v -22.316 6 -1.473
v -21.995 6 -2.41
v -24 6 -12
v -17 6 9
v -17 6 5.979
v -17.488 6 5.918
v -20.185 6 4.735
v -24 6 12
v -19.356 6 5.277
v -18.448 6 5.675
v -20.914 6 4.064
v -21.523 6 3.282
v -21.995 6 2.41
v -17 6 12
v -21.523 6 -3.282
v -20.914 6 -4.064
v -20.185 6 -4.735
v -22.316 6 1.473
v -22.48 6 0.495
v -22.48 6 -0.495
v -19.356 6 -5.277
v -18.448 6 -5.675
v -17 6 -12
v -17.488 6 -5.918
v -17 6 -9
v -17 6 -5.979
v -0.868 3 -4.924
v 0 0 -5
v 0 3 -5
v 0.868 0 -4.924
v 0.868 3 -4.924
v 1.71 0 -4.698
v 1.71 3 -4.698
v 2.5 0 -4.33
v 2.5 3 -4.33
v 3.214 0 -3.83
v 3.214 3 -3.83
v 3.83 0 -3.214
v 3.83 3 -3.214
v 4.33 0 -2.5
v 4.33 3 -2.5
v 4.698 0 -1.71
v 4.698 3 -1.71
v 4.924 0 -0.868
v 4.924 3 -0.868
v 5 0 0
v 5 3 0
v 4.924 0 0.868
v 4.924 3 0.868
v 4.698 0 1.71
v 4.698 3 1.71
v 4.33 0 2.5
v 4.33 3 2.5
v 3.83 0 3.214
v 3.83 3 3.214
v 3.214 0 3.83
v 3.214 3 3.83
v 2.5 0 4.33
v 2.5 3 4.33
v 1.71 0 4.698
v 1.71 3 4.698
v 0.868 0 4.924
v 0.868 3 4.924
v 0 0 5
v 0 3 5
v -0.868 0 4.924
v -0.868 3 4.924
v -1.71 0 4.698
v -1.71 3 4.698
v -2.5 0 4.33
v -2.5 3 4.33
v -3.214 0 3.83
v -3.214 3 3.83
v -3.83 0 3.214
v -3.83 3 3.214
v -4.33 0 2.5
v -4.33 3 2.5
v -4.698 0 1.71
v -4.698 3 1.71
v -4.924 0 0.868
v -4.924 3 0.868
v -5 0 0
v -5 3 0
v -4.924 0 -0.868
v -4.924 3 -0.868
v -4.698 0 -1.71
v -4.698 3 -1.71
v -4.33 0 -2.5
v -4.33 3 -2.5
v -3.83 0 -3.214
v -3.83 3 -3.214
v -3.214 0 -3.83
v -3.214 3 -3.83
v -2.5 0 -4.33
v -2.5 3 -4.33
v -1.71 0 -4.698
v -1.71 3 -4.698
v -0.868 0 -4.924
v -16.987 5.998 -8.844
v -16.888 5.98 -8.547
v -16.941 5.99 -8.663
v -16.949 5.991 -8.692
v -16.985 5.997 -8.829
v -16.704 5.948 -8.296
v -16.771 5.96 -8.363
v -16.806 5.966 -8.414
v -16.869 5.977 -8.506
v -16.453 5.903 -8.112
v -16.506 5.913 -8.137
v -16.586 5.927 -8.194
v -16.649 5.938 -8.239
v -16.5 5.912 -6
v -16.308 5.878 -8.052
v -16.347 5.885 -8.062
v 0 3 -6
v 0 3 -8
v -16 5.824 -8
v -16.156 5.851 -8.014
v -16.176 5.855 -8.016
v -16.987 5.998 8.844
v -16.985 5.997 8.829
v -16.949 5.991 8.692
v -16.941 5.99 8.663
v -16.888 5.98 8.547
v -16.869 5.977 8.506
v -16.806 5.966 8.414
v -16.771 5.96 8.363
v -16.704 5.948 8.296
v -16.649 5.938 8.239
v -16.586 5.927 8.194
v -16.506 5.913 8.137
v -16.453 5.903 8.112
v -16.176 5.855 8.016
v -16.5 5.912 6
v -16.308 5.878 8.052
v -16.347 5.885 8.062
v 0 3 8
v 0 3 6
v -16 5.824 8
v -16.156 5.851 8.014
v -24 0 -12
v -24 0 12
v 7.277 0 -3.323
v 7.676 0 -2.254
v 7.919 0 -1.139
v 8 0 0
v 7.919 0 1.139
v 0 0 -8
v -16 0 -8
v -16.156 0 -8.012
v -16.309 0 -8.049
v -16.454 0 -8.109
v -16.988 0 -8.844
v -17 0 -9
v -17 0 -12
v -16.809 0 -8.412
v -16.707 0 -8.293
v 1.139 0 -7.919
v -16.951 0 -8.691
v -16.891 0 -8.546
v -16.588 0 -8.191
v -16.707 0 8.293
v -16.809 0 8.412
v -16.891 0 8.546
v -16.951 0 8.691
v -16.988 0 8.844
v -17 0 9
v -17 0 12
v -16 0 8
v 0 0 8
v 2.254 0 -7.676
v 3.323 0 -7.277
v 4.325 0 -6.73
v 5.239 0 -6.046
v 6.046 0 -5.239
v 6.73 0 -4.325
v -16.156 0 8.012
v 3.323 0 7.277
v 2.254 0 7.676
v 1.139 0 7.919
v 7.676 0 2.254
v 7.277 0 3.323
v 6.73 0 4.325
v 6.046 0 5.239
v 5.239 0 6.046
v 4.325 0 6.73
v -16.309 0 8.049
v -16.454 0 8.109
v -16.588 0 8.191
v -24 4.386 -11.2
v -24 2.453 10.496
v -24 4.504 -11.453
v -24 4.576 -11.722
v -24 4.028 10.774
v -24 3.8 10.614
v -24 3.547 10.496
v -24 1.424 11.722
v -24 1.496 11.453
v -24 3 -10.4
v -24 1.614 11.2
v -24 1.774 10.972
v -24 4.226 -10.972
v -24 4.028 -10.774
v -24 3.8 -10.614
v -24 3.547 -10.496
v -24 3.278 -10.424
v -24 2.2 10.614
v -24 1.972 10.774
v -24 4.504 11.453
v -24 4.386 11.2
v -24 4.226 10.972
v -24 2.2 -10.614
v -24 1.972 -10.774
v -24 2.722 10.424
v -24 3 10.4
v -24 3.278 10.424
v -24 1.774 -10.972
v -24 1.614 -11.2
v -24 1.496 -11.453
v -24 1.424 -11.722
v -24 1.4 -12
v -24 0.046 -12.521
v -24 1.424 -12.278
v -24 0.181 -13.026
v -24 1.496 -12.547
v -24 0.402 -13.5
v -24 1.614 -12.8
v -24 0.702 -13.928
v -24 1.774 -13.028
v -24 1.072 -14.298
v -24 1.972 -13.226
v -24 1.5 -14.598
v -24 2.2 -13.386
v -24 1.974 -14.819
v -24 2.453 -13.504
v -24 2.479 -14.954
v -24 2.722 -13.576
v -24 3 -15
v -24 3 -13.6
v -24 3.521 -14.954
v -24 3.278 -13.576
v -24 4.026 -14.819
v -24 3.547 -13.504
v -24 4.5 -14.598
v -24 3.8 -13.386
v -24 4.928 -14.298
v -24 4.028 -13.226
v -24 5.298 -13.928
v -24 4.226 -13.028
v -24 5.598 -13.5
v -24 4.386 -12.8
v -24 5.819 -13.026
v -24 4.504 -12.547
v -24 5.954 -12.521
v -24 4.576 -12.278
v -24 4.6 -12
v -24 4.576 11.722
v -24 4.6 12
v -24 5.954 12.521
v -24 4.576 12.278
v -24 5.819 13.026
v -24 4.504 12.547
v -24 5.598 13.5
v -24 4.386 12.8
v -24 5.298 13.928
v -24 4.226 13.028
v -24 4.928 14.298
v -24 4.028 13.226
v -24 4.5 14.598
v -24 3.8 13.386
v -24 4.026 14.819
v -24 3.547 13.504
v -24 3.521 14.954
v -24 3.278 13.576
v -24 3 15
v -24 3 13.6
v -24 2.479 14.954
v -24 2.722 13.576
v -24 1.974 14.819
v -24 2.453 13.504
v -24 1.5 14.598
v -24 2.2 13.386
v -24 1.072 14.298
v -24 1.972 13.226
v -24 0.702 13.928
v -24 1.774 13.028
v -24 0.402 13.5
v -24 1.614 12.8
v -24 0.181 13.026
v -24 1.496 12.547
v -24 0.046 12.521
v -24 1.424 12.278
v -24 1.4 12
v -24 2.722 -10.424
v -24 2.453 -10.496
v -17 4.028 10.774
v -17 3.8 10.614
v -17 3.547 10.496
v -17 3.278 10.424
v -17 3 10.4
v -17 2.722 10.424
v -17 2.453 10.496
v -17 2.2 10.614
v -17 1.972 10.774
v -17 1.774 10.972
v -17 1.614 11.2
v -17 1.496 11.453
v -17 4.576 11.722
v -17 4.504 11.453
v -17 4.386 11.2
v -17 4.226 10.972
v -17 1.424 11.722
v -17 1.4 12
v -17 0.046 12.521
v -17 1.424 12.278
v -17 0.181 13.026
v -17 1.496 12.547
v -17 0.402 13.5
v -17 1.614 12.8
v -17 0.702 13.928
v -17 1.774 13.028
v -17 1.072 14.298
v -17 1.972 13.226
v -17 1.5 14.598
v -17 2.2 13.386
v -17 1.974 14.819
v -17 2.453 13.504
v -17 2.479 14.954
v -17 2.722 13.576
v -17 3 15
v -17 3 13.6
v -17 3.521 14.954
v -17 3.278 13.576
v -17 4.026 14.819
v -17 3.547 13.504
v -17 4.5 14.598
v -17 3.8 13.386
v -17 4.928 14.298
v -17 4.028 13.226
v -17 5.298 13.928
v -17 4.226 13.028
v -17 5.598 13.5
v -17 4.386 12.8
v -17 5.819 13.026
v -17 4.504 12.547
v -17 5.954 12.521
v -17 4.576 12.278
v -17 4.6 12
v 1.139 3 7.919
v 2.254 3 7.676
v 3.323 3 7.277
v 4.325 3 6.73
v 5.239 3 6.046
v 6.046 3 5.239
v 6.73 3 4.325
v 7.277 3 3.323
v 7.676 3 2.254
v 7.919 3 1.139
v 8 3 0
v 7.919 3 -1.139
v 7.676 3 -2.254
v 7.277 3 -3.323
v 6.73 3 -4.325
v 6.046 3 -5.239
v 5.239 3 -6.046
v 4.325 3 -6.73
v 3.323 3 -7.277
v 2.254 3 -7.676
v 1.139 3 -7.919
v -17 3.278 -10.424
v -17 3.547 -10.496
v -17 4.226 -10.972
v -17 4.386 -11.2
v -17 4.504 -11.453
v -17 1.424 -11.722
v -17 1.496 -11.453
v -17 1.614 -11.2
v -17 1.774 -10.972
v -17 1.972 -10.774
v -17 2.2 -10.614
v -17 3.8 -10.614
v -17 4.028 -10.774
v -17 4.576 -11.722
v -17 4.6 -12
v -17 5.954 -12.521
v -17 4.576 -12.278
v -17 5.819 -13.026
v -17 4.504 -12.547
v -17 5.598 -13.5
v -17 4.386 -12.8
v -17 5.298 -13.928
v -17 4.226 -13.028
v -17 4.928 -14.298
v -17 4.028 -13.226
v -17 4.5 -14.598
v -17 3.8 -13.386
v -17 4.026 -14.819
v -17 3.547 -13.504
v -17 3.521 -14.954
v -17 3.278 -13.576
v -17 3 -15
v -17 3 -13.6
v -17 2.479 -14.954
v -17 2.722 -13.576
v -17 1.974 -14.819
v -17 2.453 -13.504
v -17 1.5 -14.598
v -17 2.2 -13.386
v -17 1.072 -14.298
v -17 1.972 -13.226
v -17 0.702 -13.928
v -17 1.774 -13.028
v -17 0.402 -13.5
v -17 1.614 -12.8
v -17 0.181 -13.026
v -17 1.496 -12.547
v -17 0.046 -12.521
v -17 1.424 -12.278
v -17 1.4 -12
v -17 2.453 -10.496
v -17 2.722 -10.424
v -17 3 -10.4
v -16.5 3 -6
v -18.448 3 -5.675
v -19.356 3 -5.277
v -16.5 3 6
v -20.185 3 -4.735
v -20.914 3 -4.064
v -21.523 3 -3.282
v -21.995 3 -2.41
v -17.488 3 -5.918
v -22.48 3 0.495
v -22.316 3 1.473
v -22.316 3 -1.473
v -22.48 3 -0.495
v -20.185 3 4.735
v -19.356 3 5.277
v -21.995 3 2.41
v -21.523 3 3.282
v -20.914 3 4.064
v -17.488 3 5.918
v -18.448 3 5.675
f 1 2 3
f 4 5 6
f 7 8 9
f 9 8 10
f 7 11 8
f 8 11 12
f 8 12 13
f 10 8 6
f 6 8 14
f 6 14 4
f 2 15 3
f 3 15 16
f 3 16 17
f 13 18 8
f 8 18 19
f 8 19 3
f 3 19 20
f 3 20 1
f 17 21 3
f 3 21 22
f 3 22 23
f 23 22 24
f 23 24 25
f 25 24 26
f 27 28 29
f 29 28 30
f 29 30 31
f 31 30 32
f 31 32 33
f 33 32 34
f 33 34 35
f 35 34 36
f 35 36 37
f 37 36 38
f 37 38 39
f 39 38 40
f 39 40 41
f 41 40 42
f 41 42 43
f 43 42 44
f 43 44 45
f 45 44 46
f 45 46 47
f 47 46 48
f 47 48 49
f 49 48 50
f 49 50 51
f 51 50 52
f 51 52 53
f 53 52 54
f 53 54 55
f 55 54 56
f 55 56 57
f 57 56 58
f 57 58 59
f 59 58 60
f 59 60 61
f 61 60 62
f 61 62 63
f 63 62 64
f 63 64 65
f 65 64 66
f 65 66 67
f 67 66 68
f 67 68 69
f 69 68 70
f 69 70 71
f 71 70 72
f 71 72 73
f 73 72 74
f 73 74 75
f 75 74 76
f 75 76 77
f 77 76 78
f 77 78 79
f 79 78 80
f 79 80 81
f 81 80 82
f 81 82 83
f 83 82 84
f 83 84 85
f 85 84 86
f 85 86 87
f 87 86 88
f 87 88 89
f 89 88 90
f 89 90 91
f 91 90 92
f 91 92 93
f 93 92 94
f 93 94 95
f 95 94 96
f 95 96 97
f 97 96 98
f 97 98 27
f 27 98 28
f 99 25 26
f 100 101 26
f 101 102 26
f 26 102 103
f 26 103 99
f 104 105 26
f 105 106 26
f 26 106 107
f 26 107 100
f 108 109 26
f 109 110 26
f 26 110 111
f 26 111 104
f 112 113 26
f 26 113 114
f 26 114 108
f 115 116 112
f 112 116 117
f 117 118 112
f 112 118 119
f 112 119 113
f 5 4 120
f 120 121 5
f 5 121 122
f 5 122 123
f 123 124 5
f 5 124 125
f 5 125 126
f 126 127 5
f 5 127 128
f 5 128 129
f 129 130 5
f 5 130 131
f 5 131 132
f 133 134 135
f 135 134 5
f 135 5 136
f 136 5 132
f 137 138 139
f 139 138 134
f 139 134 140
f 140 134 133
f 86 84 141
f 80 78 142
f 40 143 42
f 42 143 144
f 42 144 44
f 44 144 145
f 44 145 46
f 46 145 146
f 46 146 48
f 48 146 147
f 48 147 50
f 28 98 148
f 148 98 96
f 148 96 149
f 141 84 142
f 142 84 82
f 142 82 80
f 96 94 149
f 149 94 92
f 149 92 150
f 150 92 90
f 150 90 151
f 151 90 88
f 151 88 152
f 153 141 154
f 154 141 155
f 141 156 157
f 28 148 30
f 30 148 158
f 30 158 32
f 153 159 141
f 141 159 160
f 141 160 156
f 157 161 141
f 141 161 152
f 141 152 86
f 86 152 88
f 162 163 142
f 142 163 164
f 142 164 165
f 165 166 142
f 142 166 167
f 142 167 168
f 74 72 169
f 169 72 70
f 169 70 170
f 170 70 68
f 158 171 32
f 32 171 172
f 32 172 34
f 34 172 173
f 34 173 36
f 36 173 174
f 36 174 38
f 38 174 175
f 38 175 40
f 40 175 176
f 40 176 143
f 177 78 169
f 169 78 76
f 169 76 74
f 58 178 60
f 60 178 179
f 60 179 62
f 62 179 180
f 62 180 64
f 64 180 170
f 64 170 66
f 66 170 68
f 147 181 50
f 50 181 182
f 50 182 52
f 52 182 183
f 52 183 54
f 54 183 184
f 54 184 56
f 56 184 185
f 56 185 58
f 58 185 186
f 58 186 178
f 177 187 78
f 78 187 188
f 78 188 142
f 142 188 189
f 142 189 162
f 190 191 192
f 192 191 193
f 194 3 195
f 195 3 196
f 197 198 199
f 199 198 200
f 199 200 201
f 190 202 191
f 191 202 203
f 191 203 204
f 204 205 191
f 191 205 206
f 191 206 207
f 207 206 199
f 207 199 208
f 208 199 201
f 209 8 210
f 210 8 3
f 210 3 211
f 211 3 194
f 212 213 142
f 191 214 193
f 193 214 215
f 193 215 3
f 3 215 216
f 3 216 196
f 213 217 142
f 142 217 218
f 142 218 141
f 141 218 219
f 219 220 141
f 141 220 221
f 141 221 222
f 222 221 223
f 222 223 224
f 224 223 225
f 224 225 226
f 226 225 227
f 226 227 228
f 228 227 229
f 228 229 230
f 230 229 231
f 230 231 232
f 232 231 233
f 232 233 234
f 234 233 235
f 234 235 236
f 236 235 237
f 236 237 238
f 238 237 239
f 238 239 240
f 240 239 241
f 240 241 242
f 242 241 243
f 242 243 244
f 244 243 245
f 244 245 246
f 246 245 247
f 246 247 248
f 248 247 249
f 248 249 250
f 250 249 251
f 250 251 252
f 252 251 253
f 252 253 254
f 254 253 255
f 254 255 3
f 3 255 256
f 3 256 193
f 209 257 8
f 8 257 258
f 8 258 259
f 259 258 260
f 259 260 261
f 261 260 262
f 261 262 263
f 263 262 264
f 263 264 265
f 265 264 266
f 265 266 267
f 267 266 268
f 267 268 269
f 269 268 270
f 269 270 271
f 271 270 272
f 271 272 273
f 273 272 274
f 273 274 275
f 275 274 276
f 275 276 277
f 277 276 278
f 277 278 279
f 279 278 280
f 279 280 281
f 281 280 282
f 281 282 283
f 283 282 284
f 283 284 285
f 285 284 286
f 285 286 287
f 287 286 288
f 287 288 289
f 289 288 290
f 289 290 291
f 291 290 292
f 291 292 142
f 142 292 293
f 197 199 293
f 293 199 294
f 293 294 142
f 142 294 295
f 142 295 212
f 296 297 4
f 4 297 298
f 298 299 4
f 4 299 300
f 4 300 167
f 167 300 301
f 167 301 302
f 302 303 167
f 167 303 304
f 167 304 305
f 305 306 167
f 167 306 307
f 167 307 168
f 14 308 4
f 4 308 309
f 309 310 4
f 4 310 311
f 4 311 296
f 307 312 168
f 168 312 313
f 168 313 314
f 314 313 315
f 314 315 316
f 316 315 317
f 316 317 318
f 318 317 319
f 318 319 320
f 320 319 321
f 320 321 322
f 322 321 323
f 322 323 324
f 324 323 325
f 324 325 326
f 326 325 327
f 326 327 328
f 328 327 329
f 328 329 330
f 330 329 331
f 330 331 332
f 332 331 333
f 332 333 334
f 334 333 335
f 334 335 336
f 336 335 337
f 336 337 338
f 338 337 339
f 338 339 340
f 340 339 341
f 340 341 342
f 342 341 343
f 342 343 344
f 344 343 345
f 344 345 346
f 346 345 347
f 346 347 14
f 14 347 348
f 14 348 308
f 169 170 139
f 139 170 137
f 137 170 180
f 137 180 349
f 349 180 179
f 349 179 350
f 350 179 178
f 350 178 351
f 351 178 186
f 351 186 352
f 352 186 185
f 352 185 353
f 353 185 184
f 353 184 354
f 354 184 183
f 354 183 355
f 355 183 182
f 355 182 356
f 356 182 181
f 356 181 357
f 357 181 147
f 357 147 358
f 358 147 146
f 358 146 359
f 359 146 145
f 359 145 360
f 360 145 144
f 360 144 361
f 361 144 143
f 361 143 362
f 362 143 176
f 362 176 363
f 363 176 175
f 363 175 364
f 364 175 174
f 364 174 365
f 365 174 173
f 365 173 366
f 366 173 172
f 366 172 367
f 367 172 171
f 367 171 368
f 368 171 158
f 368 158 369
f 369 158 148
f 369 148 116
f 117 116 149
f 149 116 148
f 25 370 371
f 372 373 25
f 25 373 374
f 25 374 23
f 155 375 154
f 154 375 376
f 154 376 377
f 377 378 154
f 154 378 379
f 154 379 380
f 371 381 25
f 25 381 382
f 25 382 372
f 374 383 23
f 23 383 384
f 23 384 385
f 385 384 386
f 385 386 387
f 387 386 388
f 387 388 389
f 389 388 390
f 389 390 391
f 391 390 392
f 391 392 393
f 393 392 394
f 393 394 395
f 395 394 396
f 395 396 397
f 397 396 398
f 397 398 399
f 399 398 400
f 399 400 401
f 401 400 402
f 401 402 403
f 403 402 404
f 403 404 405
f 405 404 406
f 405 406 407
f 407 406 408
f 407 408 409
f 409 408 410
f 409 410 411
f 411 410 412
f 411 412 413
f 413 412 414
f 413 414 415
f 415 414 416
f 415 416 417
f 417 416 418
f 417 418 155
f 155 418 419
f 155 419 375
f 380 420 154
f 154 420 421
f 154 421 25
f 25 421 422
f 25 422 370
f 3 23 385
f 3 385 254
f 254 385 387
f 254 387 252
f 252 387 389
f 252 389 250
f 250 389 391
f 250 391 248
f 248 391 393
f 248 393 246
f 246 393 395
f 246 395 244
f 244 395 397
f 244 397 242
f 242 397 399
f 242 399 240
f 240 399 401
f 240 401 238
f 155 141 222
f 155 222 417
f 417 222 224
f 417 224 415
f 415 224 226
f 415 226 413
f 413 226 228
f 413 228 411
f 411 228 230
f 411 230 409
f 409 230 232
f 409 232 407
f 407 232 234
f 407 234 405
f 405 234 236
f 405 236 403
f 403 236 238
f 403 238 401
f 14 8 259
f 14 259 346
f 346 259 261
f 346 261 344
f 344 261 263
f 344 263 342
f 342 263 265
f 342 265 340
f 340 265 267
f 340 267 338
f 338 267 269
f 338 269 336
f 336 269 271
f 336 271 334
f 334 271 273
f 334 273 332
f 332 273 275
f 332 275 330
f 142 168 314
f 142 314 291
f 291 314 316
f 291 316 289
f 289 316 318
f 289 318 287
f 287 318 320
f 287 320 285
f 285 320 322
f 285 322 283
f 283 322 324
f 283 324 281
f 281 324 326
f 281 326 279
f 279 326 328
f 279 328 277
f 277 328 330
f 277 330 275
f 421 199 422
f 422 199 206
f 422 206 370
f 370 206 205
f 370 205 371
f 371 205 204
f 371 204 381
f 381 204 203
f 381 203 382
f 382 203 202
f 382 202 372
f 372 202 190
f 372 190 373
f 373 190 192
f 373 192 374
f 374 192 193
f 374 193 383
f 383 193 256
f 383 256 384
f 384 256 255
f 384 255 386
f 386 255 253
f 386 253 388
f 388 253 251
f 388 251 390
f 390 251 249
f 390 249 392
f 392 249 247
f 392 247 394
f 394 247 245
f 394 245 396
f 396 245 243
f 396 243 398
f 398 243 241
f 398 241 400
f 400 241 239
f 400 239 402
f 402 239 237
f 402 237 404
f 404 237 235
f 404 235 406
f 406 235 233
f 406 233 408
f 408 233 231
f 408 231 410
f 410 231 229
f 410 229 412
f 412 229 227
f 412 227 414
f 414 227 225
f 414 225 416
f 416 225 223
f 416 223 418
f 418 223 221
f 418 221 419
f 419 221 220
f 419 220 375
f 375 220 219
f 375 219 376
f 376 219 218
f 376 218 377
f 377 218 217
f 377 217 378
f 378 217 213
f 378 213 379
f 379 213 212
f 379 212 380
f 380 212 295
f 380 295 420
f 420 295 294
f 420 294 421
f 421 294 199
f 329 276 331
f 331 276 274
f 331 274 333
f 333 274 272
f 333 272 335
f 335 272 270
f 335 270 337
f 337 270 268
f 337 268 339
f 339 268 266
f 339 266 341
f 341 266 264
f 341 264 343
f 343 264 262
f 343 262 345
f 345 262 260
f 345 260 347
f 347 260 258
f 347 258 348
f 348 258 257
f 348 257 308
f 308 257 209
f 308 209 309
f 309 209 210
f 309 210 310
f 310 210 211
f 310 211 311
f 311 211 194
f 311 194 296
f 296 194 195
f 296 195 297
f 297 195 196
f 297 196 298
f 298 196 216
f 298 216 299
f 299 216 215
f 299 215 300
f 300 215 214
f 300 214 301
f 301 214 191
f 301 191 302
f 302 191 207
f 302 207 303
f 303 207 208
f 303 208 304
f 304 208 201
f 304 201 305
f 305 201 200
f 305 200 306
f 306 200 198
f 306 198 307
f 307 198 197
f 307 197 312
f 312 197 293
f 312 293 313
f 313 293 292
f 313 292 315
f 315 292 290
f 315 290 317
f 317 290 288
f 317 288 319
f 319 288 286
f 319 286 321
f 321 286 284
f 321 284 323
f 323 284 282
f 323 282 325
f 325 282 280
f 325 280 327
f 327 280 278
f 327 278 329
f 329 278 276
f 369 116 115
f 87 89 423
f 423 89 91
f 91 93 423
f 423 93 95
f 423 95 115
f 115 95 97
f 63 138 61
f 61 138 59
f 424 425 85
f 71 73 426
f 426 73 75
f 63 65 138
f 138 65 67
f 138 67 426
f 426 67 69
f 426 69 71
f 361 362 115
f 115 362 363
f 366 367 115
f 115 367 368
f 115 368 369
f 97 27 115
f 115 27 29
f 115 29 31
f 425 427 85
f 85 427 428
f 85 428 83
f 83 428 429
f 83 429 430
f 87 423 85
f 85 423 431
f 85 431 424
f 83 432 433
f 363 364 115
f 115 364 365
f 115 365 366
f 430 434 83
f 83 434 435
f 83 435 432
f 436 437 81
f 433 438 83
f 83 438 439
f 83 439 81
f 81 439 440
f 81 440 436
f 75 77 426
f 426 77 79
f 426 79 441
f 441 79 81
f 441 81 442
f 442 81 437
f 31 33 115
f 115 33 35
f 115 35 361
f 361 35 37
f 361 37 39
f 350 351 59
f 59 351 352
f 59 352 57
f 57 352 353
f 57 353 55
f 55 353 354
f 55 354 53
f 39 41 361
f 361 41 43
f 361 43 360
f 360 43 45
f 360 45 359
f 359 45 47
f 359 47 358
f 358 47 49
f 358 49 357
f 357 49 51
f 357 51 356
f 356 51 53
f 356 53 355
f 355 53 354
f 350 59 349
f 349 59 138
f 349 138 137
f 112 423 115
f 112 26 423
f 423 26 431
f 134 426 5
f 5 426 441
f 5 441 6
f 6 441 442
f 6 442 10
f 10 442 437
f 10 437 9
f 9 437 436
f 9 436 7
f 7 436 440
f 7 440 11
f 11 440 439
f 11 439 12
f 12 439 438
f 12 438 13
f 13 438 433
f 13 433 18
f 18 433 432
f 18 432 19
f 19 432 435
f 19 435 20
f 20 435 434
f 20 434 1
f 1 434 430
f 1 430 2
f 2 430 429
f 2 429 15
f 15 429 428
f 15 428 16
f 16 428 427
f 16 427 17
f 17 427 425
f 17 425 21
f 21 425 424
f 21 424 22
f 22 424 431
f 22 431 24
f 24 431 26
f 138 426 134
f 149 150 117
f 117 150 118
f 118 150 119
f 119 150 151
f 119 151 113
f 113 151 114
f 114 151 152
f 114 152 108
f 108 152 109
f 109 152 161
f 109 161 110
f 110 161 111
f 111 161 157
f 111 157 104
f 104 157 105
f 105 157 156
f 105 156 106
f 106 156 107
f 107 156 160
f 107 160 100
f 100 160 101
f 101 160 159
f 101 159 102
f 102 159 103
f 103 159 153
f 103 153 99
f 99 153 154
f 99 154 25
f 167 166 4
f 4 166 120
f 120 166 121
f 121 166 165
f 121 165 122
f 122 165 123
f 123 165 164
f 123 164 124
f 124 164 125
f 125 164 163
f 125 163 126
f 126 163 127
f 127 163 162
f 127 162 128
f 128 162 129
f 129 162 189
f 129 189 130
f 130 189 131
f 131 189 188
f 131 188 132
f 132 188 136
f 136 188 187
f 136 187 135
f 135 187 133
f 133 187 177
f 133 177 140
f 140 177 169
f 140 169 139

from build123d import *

# Parameters (mm, degrees)
SKETCH1_R               = 5
BOSS_EXTRUDE1_DEPTH     = 6
FILLET1_R               = 3
SKETCH2_R               = 1.6
CUT_EXTRUDE1_DEPTH      = 36.846896658
CUT_EXTRUDE2_DEPTH      = 29.930952283
CUT_EXTRUDE2_DEPTH_BACK = 29.930952283
CUT_EXTRUDE3_DEPTH      = 29.460498942
FILLET3_R               = 1


with BuildPart() as part:
    # Sketch1 → Boss-Extrude1 (new body)
    with BuildSketch(Plane(origin=(0, 0, 0), x_dir=(1, 0, 0), z_dir=(0, 1, 0))):
        with BuildLine():
            Line((0, 8), (-17, 8))
            Line((-17, 8), (-17, 15))
            Line((-17, 15), (-24, 15))
            Line((-24, 15), (-24, -15))
            Line((-24, -15), (-17, -15))
            Line((-17, -15), (-17, -8))
            Line((-17, -8), (0, -8))
            ThreePointArc((0, -8), (8, 0), (0, 8))
        make_face()
        with Locations(Location((0, 0, 0), (0, 0, 270))):
            Circle(SKETCH1_R, mode=Mode.SUBTRACT)
    extrude(amount=BOSS_EXTRUDE1_DEPTH)

    # Fillet1
    fillet1_edges = [part.edges().sort_by_distance(p)[0] for p in [
        (-20.5, 0, -15),
        (-20.5, 6, -15),
        (-20.5, 0, 15),
        (-20.5, 6, 15),
    ]]
    fillet(fillet1_edges, radius=FILLET1_R - 0.0001)  # a hair under: the kernel refuses the full size

    # Sketch2 → Cut-Extrude1 (cut, through all)
    with BuildSketch(Plane.ZY.offset(24)):
        with Locations((-12, 3)):
            Circle(SKETCH2_R)
        with Locations((12, 3)):
            Circle(SKETCH2_R)
    extrude(amount=-CUT_EXTRUDE1_DEPTH, mode=Mode.SUBTRACT)

    # Sketch3 → Cut-Extrude2 (cut, two sides: drawn at the far end of the back side and taken through both)
    with BuildSketch(Plane.XY.offset(-CUT_EXTRUDE2_DEPTH_BACK)):
        Polygon((-17, 6), (8, 6), (8, 3), (0, 3), align=None)
    extrude(amount=CUT_EXTRUDE2_DEPTH + CUT_EXTRUDE2_DEPTH_BACK, mode=Mode.SUBTRACT)

    # Sketch4 → Cut-Extrude3 (cut, through all)
    with BuildSketch(Plane(origin=(0, 3, 0), x_dir=(1, 0, 0), z_dir=(0, 1, 0))):
        with BuildLine():
            Line((0, -6), (-16.5, -6))
            ThreePointArc((-16.5, -6), (-22.5, 0), (-16.5, 6))
            Line((-16.5, 6), (0, 6))
            ThreePointArc((0, 6), (6, 0), (0, -6))
        make_face()
    extrude(amount=CUT_EXTRUDE3_DEPTH, mode=Mode.SUBTRACT)

    # Fillet3
    fillet3_edges = [part.edges().sort_by_distance(p)[0] for p in [
        (-17, 3, -8),
        (-17, 3, 8),
    ]]
    fillet(fillet3_edges, radius=FILLET3_R)


solid = part.part
